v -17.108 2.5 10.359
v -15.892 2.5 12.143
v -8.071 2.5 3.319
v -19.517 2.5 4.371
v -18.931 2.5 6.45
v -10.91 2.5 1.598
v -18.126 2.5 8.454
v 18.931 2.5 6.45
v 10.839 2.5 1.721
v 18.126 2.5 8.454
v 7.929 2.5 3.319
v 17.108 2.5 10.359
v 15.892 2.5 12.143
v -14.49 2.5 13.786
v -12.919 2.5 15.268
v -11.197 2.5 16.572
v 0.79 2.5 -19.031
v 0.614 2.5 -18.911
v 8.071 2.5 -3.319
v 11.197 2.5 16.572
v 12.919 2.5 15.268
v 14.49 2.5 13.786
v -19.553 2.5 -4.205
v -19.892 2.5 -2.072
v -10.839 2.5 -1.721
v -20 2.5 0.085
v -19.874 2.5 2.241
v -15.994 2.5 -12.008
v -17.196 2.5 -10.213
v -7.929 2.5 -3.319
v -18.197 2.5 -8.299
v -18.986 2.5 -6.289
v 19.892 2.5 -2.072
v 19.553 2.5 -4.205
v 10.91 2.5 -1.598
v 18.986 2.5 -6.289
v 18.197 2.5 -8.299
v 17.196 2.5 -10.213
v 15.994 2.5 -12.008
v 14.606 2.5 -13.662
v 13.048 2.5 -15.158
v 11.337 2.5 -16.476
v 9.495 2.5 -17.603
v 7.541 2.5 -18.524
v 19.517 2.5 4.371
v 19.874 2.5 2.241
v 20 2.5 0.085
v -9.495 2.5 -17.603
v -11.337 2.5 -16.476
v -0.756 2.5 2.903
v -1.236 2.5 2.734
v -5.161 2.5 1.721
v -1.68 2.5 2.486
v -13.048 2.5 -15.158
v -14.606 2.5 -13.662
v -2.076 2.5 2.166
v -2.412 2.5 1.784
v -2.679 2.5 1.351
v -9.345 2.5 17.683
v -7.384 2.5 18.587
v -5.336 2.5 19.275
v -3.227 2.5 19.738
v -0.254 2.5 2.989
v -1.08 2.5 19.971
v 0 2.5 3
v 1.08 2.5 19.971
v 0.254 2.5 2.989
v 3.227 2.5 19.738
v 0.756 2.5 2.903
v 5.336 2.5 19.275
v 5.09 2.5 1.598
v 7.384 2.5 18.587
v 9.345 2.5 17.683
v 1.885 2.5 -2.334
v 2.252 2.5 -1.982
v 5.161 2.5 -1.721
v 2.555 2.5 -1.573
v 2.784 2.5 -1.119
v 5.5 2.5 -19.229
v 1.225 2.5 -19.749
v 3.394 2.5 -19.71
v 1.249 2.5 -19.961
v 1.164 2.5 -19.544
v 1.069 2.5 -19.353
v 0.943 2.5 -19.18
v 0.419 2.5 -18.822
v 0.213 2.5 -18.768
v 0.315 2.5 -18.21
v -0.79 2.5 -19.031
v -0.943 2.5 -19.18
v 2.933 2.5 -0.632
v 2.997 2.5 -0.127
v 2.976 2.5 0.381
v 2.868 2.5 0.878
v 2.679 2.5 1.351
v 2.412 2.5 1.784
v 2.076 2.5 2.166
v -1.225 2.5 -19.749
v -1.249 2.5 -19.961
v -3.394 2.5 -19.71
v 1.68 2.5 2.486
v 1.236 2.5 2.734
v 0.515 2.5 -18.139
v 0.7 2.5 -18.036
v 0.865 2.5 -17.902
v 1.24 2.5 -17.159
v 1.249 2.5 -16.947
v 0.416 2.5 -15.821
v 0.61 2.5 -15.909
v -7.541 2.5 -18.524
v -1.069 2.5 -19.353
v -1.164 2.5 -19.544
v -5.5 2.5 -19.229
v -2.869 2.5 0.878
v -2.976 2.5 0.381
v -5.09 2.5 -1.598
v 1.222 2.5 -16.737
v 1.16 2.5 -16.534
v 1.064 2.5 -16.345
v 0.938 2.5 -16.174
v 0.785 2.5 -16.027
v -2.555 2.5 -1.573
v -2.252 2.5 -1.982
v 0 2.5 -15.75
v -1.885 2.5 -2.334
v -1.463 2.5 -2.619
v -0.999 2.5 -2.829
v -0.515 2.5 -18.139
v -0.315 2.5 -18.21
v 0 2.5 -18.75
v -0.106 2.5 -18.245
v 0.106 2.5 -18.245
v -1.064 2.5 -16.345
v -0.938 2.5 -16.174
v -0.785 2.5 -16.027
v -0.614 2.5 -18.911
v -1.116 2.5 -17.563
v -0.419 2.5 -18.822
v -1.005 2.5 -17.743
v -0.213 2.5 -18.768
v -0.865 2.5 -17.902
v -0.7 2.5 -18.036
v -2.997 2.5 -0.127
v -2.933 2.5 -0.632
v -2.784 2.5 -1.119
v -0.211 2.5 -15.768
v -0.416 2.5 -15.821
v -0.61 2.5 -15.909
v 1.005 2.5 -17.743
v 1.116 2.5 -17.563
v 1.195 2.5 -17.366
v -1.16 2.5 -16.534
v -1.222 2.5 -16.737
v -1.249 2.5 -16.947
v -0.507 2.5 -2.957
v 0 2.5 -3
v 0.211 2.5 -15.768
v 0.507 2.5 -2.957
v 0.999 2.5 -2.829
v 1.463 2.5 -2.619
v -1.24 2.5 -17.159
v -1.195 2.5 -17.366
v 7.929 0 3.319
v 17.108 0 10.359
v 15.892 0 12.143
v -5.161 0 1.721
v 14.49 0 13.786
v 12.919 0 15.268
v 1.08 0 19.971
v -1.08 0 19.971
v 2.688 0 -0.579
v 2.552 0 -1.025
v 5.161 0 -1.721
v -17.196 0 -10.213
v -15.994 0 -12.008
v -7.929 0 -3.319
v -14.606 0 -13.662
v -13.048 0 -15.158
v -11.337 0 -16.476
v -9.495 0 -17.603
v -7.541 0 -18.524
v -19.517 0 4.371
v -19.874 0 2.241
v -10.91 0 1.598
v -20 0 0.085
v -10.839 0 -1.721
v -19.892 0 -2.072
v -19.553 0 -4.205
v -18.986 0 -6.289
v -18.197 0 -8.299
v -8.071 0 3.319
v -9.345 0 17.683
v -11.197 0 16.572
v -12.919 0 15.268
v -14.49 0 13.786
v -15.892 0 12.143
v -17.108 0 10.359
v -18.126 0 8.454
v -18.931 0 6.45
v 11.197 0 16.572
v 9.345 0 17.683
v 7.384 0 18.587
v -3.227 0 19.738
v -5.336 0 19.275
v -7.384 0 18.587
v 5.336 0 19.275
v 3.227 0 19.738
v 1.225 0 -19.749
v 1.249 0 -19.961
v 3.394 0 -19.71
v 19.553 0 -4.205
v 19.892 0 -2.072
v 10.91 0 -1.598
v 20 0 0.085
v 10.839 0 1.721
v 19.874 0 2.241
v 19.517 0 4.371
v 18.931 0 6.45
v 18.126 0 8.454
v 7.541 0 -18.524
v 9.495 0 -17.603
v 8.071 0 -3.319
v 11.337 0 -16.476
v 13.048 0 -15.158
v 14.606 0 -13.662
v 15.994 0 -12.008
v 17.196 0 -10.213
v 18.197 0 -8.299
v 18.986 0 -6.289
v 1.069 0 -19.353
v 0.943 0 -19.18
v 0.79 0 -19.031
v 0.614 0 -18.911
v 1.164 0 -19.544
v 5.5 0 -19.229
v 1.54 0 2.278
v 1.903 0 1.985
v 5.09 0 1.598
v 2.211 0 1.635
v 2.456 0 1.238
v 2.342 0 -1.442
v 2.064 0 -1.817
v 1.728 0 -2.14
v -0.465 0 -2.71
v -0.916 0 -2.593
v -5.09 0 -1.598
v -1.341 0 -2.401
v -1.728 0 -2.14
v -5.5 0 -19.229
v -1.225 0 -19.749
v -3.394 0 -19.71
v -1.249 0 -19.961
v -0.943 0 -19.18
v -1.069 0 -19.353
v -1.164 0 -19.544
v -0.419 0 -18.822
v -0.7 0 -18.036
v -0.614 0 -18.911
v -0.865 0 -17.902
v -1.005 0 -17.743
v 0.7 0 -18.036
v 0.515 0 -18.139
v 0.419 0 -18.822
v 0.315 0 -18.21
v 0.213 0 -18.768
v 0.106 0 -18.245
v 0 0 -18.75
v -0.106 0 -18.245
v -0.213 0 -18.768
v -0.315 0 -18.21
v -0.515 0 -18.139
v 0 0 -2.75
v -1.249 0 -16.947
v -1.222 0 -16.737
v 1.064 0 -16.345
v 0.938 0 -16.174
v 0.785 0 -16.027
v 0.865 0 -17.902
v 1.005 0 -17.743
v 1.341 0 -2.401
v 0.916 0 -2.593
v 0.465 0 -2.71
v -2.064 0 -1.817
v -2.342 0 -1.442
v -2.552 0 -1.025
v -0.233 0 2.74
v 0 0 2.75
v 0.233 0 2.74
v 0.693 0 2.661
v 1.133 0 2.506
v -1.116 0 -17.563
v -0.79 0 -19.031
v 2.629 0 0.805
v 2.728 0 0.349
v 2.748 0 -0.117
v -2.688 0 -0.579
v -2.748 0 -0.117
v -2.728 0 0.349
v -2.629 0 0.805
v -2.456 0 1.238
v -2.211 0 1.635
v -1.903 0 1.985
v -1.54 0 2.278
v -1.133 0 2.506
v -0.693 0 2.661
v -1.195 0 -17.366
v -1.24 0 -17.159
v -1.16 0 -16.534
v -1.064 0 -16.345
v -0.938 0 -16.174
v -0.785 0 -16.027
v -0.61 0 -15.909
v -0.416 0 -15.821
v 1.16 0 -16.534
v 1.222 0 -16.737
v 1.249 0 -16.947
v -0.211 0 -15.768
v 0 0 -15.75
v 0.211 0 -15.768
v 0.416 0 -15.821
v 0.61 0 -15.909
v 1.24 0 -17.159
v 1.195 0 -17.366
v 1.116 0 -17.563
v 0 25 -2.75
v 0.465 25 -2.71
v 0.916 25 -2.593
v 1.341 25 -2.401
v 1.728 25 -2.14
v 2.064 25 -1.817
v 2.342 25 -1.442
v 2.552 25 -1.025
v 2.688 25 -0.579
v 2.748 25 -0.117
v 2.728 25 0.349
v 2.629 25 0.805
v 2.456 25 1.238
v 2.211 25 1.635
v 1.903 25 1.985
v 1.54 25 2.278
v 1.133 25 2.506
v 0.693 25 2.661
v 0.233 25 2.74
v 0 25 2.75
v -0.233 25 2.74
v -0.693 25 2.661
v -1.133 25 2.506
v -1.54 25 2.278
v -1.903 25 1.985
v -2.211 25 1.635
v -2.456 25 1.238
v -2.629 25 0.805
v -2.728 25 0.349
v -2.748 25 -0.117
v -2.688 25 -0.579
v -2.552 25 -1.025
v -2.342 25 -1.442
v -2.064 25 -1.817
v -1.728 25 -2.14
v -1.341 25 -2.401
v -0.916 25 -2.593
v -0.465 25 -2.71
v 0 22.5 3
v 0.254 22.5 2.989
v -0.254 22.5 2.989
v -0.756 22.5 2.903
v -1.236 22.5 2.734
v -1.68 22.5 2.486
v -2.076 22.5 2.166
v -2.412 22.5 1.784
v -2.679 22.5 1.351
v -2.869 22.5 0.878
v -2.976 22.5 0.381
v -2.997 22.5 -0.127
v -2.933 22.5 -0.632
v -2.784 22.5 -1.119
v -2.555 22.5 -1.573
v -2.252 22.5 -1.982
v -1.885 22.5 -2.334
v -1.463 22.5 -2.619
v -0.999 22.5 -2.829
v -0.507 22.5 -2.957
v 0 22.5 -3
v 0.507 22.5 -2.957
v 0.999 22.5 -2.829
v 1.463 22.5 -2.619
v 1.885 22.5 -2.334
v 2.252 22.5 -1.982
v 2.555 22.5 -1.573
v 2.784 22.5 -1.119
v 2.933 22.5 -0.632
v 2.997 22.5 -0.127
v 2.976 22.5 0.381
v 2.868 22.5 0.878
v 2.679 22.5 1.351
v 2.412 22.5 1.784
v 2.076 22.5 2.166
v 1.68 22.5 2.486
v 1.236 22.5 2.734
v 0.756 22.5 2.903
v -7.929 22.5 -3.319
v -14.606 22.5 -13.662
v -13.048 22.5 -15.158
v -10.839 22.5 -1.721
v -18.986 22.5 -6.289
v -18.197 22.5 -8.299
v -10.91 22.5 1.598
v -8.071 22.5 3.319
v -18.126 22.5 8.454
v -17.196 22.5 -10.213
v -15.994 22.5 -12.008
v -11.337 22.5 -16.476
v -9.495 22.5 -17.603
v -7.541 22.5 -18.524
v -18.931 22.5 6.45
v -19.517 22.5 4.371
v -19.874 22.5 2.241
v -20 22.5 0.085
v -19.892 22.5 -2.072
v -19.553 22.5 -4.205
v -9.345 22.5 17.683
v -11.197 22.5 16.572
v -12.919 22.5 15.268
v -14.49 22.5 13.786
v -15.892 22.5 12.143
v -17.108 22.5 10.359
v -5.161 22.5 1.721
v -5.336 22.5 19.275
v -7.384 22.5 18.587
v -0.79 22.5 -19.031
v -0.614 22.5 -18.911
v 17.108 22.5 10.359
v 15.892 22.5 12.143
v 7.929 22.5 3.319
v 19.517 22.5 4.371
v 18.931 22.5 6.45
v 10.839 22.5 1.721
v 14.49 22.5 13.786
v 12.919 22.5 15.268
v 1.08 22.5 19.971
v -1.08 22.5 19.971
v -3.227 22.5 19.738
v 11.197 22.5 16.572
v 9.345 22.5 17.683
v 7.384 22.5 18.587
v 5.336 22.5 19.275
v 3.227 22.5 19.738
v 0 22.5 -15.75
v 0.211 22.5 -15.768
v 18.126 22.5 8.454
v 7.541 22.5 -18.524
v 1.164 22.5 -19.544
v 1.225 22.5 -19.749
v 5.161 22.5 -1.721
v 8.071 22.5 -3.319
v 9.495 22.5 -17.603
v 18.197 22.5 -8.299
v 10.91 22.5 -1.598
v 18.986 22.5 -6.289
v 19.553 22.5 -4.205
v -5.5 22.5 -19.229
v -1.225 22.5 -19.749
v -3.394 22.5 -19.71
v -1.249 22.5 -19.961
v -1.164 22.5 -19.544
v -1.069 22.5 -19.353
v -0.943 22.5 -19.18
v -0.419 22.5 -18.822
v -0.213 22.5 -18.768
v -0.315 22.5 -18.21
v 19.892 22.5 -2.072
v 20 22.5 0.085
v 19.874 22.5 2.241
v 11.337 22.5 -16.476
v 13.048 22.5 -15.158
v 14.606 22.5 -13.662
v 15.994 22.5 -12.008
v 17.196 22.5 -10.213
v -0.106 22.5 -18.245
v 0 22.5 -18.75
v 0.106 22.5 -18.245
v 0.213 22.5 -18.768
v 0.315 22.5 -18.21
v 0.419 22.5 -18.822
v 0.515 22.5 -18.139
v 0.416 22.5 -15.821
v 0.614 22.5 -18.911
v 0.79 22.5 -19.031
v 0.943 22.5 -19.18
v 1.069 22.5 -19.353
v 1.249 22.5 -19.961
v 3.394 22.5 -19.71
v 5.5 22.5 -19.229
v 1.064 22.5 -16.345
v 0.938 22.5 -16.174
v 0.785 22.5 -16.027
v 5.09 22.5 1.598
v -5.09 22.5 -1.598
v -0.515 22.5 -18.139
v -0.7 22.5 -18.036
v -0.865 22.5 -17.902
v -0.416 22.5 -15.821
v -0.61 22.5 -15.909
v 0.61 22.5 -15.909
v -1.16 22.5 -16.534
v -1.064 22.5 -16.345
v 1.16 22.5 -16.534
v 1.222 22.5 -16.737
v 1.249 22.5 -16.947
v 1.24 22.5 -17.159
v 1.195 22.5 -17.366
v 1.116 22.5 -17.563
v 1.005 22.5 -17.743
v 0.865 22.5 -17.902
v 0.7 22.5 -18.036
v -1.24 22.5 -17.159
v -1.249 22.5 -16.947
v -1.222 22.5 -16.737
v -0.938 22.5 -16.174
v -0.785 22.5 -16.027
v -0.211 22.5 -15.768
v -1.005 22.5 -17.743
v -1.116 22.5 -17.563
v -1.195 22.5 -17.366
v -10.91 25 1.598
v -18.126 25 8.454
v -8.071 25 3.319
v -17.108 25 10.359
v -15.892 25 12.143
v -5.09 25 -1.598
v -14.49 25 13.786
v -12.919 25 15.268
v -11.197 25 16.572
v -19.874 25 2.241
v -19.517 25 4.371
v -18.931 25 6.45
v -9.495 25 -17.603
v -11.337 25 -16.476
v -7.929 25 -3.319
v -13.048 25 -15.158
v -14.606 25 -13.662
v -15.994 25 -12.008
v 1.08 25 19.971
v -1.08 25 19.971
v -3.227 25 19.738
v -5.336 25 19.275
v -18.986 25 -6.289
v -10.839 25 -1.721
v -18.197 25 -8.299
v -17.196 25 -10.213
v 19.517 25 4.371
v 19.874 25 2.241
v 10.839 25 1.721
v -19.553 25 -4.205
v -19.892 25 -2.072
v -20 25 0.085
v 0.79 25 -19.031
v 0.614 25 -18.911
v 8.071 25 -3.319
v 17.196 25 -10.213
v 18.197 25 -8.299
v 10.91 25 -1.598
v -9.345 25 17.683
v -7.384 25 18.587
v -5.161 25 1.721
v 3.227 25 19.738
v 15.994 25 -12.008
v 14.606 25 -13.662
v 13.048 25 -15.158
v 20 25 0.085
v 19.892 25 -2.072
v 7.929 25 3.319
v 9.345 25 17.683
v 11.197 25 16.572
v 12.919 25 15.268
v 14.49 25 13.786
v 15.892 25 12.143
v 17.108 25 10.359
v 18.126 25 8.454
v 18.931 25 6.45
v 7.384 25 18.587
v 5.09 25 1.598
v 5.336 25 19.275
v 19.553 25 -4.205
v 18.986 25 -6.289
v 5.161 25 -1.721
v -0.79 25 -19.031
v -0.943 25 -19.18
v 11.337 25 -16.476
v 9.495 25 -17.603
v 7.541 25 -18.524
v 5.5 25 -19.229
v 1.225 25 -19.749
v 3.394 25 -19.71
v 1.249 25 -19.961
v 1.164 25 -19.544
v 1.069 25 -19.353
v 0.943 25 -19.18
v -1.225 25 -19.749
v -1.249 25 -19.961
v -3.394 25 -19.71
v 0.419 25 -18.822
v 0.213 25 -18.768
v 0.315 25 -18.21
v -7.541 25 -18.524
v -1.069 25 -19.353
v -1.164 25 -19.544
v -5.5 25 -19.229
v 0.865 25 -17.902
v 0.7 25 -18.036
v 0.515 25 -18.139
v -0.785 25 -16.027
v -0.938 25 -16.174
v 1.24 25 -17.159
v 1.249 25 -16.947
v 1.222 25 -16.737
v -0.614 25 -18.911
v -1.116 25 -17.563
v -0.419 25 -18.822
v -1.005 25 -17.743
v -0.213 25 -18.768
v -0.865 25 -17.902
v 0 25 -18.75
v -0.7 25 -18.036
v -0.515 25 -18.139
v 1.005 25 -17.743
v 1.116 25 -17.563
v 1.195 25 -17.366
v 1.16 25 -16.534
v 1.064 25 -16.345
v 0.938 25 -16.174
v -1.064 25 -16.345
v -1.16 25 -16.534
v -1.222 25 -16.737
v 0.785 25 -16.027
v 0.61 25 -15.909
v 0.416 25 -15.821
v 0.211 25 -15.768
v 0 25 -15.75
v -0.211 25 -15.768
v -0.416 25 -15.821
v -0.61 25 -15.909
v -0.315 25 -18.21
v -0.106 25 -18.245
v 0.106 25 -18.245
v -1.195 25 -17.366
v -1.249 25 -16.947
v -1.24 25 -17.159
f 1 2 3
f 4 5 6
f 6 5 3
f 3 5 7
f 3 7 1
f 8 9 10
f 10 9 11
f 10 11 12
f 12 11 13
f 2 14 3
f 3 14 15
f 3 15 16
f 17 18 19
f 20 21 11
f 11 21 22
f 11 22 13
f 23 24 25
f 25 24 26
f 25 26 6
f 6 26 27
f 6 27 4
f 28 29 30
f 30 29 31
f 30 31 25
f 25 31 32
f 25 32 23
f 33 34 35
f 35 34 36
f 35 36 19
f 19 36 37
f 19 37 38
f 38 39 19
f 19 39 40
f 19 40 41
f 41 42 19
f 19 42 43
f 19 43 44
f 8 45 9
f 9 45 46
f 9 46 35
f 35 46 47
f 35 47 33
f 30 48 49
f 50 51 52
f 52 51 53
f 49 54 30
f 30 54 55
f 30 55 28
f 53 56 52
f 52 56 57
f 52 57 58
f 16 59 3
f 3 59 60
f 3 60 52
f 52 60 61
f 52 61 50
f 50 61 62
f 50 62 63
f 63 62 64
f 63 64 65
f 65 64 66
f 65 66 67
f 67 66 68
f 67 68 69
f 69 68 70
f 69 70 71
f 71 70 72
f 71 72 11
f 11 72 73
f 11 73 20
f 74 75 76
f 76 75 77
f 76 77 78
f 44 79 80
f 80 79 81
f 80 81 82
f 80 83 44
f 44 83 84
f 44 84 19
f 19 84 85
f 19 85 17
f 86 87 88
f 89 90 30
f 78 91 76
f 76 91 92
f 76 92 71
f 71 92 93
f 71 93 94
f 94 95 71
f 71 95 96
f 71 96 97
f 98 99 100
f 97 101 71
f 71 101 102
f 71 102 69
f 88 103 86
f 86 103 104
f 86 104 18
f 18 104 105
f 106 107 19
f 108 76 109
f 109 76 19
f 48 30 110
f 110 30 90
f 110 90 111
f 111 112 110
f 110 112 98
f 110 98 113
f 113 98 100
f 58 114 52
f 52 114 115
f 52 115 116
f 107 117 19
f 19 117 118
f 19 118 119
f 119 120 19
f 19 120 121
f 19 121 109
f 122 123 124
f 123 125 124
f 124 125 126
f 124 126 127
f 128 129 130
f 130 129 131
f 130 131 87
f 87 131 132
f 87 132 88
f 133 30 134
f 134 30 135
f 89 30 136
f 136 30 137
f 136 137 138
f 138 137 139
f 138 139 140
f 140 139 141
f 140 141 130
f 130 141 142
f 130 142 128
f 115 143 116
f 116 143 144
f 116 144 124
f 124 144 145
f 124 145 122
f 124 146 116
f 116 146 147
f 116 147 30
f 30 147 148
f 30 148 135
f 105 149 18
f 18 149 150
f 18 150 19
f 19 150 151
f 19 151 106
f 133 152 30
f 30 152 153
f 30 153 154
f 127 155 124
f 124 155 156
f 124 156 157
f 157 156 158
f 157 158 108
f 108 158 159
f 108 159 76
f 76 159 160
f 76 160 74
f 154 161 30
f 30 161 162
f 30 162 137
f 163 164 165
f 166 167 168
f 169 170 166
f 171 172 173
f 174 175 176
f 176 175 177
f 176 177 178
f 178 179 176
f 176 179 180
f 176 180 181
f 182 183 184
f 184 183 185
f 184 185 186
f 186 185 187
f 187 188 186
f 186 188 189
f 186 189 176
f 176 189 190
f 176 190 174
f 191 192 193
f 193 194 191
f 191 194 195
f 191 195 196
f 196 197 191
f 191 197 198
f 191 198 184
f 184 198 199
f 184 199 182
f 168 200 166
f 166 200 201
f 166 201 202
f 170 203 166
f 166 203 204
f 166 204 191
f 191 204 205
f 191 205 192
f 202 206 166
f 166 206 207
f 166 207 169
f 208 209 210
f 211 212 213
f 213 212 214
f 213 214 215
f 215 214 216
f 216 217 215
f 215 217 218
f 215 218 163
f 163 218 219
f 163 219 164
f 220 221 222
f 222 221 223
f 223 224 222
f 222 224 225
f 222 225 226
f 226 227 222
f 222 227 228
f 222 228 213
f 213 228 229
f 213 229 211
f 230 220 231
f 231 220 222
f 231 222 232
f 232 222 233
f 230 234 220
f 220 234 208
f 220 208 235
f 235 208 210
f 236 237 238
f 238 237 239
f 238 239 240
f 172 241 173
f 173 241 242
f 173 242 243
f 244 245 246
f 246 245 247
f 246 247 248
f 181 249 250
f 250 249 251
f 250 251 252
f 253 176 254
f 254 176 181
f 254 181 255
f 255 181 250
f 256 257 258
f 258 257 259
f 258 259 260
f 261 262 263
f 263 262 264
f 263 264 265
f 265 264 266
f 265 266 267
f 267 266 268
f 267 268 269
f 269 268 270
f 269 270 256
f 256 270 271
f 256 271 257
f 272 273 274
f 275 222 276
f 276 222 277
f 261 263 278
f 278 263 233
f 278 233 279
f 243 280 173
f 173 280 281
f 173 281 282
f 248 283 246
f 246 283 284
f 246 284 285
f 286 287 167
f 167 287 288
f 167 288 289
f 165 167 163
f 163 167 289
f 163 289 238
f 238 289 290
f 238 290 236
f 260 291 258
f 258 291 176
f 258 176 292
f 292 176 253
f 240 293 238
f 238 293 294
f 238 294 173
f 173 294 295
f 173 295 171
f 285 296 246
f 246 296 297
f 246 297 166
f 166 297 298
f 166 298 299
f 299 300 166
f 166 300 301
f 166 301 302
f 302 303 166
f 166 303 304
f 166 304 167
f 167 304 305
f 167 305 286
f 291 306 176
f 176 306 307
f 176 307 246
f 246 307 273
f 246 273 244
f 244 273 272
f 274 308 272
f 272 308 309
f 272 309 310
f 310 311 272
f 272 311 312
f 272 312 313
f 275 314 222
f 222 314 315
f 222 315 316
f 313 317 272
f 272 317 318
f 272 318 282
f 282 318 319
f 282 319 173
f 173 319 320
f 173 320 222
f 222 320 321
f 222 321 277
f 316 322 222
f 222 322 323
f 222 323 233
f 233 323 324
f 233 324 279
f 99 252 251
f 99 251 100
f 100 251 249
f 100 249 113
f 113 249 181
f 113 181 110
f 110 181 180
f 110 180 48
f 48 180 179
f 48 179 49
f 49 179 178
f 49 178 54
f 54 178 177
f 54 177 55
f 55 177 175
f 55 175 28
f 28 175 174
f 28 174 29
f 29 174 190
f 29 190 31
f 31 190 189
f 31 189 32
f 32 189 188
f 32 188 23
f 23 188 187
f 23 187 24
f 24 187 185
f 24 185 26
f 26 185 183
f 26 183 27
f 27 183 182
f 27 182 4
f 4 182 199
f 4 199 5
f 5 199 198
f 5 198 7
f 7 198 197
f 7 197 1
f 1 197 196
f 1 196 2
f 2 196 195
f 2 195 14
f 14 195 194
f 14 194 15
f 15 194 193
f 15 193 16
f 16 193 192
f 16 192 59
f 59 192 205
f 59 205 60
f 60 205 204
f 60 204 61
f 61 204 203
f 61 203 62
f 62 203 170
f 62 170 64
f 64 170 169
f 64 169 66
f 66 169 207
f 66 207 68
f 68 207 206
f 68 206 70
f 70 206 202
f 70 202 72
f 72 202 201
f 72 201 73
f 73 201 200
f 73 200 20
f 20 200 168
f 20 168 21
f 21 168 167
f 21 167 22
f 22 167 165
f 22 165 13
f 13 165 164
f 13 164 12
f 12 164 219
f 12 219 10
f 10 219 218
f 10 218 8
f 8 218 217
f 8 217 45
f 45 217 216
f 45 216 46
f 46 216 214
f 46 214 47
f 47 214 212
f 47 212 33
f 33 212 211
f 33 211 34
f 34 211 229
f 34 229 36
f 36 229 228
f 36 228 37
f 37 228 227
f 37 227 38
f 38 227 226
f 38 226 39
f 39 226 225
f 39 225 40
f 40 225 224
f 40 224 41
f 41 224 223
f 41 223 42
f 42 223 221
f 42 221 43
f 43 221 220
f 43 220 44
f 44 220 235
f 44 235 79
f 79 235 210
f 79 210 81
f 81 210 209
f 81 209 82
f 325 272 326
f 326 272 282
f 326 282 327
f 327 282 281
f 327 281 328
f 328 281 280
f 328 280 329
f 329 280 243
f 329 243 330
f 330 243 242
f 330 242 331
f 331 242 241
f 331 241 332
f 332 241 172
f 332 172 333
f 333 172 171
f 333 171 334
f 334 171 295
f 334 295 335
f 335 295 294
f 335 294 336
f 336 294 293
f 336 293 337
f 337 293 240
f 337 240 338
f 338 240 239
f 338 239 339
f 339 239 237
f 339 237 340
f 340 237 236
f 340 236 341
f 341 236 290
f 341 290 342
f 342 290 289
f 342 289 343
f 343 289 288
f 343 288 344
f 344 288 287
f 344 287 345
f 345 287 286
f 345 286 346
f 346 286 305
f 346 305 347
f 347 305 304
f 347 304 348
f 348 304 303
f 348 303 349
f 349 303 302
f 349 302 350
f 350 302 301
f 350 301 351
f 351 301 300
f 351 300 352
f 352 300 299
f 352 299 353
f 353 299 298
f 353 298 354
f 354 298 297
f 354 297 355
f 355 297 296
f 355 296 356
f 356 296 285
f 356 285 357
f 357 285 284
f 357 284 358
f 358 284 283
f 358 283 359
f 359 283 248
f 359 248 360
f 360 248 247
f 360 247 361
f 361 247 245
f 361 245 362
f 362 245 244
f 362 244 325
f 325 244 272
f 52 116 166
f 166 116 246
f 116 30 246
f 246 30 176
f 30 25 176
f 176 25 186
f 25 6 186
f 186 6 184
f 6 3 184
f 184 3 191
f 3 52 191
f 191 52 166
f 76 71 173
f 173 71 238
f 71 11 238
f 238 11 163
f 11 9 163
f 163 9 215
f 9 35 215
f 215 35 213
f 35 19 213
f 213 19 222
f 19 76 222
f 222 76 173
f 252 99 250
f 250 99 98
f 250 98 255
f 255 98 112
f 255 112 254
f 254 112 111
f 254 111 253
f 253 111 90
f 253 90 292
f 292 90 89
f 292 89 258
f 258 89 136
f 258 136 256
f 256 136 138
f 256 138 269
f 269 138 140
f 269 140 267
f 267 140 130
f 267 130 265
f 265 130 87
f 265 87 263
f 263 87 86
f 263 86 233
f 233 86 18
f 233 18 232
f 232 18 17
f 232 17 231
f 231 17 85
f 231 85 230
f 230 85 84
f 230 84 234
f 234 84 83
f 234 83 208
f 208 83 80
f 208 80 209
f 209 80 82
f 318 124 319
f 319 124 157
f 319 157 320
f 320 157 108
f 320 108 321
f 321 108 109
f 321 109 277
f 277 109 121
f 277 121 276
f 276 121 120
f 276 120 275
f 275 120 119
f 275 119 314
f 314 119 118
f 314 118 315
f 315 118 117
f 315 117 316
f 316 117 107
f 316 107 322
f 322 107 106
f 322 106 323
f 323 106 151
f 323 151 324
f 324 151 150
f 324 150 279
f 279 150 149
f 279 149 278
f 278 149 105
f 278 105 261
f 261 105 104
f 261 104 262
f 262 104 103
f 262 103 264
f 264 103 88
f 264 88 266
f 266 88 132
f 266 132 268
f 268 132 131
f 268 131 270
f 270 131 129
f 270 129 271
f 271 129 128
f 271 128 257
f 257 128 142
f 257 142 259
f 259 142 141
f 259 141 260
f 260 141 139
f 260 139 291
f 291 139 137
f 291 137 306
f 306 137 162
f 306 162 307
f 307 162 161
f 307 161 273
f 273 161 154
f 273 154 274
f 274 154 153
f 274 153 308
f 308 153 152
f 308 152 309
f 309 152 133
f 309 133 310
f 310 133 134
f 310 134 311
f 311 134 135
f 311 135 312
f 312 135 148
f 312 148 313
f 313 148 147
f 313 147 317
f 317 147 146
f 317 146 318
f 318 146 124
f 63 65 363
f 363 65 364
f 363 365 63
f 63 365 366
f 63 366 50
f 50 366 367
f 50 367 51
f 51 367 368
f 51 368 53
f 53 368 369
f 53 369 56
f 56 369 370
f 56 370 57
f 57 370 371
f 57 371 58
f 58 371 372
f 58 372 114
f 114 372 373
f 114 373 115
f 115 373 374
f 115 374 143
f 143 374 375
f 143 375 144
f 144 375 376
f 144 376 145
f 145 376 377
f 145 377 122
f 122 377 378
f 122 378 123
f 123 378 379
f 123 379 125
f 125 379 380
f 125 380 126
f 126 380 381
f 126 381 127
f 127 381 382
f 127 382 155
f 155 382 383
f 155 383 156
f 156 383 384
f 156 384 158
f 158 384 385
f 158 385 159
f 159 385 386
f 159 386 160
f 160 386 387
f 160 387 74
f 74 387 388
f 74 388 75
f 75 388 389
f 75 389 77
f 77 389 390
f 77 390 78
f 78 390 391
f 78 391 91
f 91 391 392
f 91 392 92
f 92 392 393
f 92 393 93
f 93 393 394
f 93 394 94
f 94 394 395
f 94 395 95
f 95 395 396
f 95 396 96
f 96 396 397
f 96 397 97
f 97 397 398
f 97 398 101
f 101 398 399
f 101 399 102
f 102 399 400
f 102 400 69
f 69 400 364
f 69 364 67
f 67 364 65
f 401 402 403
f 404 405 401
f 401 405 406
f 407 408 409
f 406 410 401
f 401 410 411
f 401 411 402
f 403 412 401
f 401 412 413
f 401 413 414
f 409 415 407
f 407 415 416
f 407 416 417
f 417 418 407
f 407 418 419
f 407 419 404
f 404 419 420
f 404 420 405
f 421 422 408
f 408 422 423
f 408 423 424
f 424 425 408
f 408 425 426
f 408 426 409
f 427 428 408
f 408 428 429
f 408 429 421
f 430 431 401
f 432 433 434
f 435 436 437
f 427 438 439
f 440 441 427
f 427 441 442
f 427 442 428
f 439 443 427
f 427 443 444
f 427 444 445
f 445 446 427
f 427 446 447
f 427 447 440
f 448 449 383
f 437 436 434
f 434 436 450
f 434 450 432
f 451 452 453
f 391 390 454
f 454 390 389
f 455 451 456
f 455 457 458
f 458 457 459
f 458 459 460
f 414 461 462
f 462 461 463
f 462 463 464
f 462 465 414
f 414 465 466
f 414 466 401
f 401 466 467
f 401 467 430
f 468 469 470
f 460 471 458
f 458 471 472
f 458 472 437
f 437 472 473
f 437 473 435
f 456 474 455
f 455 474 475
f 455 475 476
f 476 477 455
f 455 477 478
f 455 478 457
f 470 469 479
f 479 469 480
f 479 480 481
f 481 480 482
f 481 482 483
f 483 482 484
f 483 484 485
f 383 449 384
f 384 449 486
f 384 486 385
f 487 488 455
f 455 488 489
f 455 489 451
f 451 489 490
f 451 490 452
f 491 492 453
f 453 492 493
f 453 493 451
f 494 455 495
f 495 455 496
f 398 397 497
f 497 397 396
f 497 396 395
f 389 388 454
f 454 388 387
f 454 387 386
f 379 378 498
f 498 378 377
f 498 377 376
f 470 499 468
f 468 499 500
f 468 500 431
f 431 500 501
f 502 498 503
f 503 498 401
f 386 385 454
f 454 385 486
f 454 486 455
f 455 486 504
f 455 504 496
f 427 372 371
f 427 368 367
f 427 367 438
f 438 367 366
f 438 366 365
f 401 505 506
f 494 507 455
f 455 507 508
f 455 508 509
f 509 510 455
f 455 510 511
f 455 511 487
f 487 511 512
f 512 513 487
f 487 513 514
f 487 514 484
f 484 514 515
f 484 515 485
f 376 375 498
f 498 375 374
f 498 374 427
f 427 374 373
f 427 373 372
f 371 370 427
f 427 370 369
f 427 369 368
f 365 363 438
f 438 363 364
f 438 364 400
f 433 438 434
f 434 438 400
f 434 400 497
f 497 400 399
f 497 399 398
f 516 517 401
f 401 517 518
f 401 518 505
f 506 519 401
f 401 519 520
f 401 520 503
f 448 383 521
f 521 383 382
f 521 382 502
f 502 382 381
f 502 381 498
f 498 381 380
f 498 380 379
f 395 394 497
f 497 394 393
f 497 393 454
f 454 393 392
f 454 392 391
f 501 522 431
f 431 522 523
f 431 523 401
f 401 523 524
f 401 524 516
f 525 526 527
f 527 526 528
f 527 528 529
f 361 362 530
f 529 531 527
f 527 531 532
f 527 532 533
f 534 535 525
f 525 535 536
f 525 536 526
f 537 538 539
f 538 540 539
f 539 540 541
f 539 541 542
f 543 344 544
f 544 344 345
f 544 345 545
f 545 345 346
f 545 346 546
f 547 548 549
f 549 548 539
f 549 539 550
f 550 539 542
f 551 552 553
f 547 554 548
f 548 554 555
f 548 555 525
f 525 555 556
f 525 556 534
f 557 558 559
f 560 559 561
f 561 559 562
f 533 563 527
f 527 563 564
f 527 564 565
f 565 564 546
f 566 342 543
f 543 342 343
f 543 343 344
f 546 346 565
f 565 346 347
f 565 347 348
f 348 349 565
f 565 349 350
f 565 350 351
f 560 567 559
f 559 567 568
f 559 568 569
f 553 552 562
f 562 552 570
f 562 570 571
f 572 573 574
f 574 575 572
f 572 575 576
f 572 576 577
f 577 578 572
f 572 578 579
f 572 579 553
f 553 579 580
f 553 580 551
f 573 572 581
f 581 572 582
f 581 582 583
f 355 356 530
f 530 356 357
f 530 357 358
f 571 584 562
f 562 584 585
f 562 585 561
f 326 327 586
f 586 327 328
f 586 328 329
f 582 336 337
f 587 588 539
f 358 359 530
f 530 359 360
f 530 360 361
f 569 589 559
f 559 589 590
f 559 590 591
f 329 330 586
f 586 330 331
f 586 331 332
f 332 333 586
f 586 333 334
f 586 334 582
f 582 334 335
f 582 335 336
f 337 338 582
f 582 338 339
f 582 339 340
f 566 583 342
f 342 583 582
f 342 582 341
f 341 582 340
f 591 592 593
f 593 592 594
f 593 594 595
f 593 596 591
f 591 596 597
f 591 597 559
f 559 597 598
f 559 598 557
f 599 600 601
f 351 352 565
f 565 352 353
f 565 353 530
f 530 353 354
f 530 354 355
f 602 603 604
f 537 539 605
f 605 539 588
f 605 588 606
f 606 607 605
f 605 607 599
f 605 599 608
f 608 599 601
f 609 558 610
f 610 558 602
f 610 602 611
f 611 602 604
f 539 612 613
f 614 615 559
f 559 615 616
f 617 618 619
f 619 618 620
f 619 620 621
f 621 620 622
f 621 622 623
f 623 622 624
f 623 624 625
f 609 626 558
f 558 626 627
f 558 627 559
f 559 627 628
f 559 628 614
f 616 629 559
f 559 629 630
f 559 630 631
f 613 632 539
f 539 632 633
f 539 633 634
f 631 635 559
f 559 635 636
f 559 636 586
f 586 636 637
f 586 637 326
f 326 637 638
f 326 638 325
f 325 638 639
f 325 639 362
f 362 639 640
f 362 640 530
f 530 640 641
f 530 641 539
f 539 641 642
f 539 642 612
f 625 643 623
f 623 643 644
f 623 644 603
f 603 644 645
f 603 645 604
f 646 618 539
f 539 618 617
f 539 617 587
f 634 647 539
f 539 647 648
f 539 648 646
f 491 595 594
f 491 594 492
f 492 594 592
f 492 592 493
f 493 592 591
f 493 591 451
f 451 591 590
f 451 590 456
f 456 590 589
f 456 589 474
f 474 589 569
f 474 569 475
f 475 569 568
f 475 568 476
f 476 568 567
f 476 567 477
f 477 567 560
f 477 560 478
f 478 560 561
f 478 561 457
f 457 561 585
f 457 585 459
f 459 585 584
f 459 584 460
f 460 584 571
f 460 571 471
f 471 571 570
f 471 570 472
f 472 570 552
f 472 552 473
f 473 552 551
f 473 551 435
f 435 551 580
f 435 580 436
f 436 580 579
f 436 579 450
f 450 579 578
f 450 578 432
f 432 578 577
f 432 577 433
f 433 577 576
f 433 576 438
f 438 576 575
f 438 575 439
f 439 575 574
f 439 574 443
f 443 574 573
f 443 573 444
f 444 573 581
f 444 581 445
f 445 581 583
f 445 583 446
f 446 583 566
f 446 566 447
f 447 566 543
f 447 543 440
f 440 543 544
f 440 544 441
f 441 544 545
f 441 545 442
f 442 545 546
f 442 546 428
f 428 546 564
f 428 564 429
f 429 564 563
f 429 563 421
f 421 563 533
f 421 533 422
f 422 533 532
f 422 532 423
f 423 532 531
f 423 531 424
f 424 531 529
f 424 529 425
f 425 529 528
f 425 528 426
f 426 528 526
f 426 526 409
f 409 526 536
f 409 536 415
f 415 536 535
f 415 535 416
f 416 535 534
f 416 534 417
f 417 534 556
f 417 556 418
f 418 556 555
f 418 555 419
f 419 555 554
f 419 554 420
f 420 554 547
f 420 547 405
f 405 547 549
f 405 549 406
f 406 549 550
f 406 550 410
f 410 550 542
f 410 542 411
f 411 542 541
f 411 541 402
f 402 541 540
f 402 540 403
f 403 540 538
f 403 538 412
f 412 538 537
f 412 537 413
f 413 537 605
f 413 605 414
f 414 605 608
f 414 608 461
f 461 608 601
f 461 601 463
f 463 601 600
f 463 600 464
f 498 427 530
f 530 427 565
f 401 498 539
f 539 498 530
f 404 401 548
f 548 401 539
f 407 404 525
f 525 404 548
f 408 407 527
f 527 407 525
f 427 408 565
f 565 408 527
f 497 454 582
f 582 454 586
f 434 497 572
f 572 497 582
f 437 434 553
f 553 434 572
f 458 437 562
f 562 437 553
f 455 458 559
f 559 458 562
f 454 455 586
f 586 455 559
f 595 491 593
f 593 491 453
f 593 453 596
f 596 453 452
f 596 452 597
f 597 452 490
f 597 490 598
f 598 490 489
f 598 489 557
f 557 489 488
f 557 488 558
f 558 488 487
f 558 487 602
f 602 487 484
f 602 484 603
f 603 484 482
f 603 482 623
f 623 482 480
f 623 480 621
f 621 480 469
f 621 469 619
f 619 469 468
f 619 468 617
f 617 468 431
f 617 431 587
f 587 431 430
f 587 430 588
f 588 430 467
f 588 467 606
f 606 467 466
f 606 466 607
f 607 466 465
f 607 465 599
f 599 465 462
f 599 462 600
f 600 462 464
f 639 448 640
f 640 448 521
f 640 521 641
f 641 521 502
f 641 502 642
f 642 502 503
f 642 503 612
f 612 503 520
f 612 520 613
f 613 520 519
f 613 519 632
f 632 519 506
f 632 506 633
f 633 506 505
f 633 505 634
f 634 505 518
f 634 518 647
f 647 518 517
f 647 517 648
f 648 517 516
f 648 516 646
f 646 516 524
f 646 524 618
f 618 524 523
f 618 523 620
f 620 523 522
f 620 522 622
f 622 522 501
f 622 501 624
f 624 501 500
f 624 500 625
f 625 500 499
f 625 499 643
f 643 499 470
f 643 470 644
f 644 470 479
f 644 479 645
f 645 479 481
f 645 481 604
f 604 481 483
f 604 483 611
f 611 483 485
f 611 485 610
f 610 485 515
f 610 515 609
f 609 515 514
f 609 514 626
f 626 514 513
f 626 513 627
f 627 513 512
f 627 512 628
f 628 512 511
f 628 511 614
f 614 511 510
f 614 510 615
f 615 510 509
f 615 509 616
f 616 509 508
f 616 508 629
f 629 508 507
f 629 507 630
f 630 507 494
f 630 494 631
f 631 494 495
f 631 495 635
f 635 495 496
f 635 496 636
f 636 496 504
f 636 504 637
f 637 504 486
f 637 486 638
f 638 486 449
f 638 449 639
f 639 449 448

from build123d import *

# Parameters (mm, degrees)
SKETCH1_R           = 20
SKETCH1_R_2         = 2.75
BOSS_EXTRUDE1_DEPTH = 2.5
CUT_EXTRUDE3_DEPTH  = 2.5
SKETCH4_R           = 1.25
CUT_EXTRUDE4_DEPTH  = 5
SKETCH2_R           = 3
SKETCH2_R_2         = 2.75
BOSS_EXTRUDE2_DEPTH = 10


with BuildPart() as part:
    # Sketch1 → Boss-Extrude1 (new body)
    with BuildSketch(Plane(origin=(0, 0, 0), x_dir=(1, 0, 0), z_dir=(0, 1, 0))):
        Circle(SKETCH1_R)
        Circle(SKETCH1_R_2, mode=Mode.SUBTRACT)
    extrude(amount=BOSS_EXTRUDE1_DEPTH)

    # Sketch3 → Cut-Extrude3 (cut)
    with BuildSketch(Plane.XZ):
        Polygon((-5.161329605, 1.721273866), (-8.071331697, 3.318997608), (-10.910002092, 1.597723742), (-10.838670395, -1.721273866), (-7.928668303, -3.318997608), (-5.089997908, -1.597723742), align=None)
        Polygon((5.161329605, -1.721273866), (8.071331697, -3.318997608), (10.910002092, -1.597723742), (10.838670395, 1.721273866), (7.928668303, 3.318997608), (5.089997908, 1.597723742), align=None)
    extrude(amount=-CUT_EXTRUDE3_DEPTH, mode=Mode.SUBTRACT)

    # Sketch4 → Cut-Extrude4 (cut)
    with BuildSketch(Plane(origin=(0, 2.5, 0), x_dir=(1, 0, 0), z_dir=(0, 1, 0))):
        with Locations((0, 17)):
            Circle(SKETCH4_R)
        with Locations((0, 20)):
            Circle(SKETCH4_R)
    extrude(amount=-CUT_EXTRUDE4_DEPTH, mode=Mode.SUBTRACT)

    # Sketch2 → Boss-Extrude2 (add)
    with BuildSketch(Plane(origin=(0, 2.5, 0), x_dir=(1, 0, 0), z_dir=(0, 1, 0))):
        Circle(SKETCH2_R)
        Circle(SKETCH2_R_2, mode=Mode.SUBTRACT)
    extrude(amount=BOSS_EXTRUDE2_DEPTH)

    # Mirror7: part across plane


with BuildPart() as part_1:
    add(part.part)
    add(part.part.mirror(Plane.ZX.offset(12.5)))


solid = part_1.part
